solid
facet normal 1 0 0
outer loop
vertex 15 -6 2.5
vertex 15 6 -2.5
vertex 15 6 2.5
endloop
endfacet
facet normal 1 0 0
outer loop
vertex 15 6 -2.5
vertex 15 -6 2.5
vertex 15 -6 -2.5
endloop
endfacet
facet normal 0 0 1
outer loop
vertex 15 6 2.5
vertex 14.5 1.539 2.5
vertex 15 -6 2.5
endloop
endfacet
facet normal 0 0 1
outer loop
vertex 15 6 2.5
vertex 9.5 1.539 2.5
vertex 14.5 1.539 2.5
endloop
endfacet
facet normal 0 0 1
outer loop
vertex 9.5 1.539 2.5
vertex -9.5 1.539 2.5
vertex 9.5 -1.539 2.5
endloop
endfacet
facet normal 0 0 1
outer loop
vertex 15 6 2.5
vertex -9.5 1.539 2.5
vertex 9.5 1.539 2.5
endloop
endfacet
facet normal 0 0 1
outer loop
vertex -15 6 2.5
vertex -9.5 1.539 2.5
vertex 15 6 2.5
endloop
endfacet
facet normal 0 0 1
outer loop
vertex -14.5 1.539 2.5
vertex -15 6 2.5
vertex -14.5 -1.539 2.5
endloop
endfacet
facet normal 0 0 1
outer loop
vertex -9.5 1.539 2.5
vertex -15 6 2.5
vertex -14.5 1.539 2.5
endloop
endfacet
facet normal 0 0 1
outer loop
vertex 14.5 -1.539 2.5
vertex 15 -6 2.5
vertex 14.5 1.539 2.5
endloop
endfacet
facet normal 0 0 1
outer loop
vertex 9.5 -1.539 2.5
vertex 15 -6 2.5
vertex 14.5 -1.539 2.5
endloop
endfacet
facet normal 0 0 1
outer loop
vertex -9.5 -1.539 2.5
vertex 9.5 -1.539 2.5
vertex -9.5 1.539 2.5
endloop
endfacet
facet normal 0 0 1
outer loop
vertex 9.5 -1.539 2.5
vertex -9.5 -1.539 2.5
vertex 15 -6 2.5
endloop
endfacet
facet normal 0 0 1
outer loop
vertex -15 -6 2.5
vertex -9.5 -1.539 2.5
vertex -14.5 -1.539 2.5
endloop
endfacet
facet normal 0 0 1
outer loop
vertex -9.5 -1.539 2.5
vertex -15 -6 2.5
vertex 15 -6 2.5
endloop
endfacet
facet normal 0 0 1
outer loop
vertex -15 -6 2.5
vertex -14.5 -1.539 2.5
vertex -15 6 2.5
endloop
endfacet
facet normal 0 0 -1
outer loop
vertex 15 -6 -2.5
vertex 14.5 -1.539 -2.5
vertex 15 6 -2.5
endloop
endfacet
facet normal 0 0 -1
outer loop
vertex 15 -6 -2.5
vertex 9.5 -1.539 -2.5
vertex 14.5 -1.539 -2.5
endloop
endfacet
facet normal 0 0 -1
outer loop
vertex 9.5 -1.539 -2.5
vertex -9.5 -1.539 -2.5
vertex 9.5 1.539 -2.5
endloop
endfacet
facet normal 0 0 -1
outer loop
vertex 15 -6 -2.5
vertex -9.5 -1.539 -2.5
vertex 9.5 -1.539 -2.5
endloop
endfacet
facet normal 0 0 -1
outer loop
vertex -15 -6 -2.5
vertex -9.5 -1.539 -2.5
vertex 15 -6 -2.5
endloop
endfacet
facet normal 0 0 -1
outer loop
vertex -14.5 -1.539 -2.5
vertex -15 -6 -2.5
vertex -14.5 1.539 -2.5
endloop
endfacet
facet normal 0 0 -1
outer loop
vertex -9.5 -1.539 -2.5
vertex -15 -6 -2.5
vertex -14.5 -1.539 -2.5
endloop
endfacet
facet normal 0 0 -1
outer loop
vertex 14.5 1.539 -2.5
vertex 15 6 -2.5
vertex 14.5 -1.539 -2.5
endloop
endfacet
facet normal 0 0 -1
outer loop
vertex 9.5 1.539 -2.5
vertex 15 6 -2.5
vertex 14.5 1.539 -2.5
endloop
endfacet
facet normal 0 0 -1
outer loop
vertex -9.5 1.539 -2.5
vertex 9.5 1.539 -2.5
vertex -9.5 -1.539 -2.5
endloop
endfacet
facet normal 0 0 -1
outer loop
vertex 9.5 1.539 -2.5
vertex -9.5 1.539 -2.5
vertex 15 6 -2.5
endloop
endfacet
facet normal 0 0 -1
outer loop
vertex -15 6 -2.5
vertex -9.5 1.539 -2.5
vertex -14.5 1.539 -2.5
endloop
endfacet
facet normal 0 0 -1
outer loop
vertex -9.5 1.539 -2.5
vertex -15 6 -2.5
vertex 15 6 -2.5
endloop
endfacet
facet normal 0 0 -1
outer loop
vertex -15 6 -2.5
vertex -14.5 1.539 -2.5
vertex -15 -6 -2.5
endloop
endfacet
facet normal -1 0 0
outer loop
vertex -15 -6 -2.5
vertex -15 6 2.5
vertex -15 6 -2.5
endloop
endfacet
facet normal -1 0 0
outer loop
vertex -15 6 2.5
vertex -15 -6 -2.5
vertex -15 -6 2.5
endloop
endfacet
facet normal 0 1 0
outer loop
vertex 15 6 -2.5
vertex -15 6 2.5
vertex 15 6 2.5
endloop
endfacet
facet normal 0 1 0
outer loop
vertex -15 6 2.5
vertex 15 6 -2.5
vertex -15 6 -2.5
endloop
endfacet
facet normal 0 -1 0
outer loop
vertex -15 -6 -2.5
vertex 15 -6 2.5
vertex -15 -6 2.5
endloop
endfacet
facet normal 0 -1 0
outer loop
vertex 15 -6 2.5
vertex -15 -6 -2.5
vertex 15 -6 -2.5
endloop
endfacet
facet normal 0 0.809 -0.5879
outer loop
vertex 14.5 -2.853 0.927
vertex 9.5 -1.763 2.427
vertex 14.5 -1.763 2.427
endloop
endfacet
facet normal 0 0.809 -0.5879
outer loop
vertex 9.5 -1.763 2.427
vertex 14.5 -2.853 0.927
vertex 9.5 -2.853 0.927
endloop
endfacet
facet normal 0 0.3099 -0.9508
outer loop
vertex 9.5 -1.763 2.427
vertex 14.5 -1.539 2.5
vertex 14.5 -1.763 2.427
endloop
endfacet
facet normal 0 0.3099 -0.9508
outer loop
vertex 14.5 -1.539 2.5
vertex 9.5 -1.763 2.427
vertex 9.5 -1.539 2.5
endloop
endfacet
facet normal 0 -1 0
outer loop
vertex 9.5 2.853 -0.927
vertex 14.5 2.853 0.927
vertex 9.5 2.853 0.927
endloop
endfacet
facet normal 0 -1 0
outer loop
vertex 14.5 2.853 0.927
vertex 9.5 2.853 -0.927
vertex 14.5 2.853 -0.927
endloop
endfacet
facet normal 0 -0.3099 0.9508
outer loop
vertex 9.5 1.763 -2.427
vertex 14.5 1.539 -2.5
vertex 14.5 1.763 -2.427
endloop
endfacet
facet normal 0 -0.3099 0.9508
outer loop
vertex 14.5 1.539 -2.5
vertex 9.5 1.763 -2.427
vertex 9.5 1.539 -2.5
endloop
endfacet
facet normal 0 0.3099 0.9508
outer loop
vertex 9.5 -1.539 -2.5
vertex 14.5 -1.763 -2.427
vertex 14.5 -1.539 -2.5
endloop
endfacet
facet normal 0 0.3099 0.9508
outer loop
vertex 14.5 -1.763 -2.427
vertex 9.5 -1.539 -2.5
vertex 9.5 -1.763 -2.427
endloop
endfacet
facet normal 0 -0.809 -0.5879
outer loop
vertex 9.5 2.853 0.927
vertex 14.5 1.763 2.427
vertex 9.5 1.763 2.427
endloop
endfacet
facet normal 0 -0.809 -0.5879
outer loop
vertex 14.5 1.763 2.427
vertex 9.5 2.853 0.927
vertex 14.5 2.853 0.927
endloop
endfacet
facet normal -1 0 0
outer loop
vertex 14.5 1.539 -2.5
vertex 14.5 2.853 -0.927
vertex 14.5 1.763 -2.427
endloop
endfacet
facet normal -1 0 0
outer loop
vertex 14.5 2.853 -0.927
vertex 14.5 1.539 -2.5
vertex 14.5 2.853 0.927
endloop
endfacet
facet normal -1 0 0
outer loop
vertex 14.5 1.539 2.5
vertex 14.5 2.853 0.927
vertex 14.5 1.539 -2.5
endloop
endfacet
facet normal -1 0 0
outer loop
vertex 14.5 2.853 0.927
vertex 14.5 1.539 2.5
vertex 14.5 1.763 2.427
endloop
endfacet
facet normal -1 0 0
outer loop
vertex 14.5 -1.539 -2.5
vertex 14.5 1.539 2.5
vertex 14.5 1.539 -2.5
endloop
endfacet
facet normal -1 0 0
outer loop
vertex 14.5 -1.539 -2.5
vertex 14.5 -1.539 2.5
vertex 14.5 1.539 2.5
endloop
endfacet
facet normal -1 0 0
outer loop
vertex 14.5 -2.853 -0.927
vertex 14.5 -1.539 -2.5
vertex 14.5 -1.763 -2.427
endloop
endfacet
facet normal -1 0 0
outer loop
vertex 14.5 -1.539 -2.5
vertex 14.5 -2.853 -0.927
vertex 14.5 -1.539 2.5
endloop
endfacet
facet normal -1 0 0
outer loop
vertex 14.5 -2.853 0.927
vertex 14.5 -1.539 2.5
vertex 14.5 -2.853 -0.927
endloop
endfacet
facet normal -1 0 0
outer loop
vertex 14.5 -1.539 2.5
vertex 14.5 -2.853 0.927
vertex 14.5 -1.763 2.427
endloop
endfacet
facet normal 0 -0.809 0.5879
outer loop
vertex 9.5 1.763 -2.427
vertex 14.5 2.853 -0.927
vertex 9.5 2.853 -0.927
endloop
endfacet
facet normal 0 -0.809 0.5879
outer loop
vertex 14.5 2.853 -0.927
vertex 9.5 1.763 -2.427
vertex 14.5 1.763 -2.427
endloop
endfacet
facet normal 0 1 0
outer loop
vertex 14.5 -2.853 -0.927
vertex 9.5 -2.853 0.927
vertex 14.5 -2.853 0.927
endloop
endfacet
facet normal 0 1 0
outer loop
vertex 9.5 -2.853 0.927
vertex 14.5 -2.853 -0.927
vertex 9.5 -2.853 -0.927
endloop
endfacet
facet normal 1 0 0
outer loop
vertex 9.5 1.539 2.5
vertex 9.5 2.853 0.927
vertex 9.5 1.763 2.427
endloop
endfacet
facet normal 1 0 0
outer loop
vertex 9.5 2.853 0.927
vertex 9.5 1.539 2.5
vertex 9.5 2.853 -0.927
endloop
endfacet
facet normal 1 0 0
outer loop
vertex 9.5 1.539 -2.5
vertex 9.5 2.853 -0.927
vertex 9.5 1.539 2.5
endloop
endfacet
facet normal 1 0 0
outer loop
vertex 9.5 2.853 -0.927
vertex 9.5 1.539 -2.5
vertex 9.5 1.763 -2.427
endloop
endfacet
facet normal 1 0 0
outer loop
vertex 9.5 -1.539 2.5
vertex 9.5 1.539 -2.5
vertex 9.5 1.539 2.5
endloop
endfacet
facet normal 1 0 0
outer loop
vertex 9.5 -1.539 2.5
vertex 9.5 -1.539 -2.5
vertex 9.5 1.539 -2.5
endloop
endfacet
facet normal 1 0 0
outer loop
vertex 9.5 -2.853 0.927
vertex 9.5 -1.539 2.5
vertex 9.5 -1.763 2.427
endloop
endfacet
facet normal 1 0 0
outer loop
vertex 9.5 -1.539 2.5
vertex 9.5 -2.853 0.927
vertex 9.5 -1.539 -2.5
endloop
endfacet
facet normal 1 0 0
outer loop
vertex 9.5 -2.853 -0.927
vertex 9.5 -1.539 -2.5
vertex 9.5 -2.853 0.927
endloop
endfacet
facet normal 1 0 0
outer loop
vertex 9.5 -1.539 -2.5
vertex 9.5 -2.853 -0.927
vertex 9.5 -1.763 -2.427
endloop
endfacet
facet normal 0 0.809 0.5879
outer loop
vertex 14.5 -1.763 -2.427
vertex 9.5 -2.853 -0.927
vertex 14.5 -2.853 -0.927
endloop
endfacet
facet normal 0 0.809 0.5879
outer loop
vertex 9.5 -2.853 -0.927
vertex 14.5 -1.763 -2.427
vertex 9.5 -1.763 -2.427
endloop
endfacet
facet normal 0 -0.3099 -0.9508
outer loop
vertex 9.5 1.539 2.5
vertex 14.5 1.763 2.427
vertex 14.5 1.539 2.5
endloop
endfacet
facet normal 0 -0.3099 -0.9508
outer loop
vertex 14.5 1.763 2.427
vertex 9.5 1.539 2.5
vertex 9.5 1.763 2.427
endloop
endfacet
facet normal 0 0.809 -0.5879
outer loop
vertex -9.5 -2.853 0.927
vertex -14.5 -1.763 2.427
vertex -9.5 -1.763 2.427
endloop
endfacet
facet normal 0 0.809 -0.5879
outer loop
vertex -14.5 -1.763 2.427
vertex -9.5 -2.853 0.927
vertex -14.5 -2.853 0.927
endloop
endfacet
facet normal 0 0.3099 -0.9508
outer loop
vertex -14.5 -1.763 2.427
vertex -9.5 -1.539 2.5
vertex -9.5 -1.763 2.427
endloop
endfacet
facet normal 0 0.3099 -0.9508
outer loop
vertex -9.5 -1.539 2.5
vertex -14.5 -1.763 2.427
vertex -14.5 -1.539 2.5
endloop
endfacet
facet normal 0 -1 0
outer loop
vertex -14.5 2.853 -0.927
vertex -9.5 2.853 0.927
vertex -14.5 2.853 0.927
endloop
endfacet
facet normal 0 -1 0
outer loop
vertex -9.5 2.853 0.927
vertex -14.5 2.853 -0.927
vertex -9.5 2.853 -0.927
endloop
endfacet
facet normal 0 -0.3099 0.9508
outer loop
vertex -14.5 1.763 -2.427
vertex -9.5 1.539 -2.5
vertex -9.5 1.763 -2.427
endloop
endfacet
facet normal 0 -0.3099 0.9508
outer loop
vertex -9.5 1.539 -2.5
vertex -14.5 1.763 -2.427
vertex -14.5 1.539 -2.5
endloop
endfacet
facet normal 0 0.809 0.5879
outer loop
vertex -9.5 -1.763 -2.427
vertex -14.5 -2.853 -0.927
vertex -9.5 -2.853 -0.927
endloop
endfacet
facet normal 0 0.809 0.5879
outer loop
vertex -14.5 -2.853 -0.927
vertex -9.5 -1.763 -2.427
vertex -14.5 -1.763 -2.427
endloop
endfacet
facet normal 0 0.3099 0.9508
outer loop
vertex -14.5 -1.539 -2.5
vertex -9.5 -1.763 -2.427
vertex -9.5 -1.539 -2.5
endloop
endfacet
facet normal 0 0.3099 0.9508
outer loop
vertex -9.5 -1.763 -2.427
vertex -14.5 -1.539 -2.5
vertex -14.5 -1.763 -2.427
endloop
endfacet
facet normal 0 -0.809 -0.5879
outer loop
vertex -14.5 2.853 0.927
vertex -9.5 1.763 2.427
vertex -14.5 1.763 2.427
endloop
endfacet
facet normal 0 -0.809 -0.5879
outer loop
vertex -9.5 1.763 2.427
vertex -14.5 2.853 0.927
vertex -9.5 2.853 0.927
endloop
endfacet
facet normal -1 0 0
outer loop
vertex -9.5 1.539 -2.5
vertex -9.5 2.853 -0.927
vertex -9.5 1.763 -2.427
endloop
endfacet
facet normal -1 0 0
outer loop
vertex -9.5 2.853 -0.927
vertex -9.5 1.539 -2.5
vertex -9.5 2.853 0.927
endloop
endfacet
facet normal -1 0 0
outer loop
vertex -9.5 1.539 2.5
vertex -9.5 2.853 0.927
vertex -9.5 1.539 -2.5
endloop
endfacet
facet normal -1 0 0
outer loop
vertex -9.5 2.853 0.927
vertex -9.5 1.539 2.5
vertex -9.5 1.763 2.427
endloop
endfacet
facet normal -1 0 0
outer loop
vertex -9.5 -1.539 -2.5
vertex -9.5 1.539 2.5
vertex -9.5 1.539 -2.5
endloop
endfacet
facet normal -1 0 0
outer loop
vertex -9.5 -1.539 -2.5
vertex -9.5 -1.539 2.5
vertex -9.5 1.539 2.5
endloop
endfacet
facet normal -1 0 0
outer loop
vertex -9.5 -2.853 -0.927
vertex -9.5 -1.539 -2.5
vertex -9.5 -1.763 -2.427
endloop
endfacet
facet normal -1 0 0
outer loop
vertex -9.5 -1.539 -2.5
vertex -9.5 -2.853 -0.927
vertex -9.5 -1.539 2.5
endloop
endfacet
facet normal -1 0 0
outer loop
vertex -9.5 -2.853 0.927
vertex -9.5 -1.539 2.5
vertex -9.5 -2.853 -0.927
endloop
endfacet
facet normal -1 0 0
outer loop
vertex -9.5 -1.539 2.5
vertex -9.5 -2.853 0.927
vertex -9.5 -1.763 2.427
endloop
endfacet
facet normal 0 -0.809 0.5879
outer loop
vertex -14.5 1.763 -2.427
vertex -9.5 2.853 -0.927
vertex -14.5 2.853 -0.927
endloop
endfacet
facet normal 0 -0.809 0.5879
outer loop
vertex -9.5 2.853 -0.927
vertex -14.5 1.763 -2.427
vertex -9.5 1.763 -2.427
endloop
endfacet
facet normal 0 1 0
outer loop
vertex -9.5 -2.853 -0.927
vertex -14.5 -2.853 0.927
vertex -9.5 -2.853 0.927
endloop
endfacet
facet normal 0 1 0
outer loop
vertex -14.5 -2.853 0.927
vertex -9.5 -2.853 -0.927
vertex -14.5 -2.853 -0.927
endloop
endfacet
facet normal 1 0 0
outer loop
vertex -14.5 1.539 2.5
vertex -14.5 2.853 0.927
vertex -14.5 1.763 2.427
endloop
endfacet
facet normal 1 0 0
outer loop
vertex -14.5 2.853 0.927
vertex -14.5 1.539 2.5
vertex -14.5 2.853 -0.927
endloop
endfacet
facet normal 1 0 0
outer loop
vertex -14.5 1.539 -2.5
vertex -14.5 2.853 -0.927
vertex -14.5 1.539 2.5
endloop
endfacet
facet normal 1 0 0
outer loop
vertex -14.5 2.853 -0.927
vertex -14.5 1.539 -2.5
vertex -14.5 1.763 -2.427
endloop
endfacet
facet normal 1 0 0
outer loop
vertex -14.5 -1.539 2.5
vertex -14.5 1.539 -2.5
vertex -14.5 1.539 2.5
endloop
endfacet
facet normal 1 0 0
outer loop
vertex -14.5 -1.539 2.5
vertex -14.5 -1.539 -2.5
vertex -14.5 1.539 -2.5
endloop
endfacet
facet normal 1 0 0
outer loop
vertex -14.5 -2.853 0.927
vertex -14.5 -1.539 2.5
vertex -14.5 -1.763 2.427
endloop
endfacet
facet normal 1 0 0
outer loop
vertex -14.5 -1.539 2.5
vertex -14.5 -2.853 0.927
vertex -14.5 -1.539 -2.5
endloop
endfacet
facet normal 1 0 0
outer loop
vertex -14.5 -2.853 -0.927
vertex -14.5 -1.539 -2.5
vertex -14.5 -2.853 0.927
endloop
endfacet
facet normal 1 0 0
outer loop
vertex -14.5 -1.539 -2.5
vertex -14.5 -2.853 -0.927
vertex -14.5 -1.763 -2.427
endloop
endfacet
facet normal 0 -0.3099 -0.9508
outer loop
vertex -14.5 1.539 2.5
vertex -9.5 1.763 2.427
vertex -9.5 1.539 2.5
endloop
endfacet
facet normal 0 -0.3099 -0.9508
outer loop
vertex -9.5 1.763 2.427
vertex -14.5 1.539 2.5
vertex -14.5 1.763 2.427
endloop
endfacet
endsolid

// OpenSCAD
// Parameters for key component dimensions
key_length = 30;  // Total length of the key
key_width = 12;   // Width of the key
key_thickness = 5; // Thickness of the key
rounded_edge_diameter = 6; // Diameter for rounded features

module key() {
    difference() {
        // Create the base shape of the key
        cube([key_length, key_width, key_thickness], center = true);
        
        // Add rounded edge cutouts at both ends
        translate([key_length / 2 - rounded_edge_diameter / 2, 0, 0])
            rotate([0, 90, 0])
            cylinder(d = rounded_edge_diameter, h = key_thickness, center = true);
        translate([-key_length / 2 + rounded_edge_diameter / 2, 0, 0])
            rotate([0, 90, 0])
            cylinder(d = rounded_edge_diameter, h = key_thickness, center = true);
    }
}

// Render the key component
key();
